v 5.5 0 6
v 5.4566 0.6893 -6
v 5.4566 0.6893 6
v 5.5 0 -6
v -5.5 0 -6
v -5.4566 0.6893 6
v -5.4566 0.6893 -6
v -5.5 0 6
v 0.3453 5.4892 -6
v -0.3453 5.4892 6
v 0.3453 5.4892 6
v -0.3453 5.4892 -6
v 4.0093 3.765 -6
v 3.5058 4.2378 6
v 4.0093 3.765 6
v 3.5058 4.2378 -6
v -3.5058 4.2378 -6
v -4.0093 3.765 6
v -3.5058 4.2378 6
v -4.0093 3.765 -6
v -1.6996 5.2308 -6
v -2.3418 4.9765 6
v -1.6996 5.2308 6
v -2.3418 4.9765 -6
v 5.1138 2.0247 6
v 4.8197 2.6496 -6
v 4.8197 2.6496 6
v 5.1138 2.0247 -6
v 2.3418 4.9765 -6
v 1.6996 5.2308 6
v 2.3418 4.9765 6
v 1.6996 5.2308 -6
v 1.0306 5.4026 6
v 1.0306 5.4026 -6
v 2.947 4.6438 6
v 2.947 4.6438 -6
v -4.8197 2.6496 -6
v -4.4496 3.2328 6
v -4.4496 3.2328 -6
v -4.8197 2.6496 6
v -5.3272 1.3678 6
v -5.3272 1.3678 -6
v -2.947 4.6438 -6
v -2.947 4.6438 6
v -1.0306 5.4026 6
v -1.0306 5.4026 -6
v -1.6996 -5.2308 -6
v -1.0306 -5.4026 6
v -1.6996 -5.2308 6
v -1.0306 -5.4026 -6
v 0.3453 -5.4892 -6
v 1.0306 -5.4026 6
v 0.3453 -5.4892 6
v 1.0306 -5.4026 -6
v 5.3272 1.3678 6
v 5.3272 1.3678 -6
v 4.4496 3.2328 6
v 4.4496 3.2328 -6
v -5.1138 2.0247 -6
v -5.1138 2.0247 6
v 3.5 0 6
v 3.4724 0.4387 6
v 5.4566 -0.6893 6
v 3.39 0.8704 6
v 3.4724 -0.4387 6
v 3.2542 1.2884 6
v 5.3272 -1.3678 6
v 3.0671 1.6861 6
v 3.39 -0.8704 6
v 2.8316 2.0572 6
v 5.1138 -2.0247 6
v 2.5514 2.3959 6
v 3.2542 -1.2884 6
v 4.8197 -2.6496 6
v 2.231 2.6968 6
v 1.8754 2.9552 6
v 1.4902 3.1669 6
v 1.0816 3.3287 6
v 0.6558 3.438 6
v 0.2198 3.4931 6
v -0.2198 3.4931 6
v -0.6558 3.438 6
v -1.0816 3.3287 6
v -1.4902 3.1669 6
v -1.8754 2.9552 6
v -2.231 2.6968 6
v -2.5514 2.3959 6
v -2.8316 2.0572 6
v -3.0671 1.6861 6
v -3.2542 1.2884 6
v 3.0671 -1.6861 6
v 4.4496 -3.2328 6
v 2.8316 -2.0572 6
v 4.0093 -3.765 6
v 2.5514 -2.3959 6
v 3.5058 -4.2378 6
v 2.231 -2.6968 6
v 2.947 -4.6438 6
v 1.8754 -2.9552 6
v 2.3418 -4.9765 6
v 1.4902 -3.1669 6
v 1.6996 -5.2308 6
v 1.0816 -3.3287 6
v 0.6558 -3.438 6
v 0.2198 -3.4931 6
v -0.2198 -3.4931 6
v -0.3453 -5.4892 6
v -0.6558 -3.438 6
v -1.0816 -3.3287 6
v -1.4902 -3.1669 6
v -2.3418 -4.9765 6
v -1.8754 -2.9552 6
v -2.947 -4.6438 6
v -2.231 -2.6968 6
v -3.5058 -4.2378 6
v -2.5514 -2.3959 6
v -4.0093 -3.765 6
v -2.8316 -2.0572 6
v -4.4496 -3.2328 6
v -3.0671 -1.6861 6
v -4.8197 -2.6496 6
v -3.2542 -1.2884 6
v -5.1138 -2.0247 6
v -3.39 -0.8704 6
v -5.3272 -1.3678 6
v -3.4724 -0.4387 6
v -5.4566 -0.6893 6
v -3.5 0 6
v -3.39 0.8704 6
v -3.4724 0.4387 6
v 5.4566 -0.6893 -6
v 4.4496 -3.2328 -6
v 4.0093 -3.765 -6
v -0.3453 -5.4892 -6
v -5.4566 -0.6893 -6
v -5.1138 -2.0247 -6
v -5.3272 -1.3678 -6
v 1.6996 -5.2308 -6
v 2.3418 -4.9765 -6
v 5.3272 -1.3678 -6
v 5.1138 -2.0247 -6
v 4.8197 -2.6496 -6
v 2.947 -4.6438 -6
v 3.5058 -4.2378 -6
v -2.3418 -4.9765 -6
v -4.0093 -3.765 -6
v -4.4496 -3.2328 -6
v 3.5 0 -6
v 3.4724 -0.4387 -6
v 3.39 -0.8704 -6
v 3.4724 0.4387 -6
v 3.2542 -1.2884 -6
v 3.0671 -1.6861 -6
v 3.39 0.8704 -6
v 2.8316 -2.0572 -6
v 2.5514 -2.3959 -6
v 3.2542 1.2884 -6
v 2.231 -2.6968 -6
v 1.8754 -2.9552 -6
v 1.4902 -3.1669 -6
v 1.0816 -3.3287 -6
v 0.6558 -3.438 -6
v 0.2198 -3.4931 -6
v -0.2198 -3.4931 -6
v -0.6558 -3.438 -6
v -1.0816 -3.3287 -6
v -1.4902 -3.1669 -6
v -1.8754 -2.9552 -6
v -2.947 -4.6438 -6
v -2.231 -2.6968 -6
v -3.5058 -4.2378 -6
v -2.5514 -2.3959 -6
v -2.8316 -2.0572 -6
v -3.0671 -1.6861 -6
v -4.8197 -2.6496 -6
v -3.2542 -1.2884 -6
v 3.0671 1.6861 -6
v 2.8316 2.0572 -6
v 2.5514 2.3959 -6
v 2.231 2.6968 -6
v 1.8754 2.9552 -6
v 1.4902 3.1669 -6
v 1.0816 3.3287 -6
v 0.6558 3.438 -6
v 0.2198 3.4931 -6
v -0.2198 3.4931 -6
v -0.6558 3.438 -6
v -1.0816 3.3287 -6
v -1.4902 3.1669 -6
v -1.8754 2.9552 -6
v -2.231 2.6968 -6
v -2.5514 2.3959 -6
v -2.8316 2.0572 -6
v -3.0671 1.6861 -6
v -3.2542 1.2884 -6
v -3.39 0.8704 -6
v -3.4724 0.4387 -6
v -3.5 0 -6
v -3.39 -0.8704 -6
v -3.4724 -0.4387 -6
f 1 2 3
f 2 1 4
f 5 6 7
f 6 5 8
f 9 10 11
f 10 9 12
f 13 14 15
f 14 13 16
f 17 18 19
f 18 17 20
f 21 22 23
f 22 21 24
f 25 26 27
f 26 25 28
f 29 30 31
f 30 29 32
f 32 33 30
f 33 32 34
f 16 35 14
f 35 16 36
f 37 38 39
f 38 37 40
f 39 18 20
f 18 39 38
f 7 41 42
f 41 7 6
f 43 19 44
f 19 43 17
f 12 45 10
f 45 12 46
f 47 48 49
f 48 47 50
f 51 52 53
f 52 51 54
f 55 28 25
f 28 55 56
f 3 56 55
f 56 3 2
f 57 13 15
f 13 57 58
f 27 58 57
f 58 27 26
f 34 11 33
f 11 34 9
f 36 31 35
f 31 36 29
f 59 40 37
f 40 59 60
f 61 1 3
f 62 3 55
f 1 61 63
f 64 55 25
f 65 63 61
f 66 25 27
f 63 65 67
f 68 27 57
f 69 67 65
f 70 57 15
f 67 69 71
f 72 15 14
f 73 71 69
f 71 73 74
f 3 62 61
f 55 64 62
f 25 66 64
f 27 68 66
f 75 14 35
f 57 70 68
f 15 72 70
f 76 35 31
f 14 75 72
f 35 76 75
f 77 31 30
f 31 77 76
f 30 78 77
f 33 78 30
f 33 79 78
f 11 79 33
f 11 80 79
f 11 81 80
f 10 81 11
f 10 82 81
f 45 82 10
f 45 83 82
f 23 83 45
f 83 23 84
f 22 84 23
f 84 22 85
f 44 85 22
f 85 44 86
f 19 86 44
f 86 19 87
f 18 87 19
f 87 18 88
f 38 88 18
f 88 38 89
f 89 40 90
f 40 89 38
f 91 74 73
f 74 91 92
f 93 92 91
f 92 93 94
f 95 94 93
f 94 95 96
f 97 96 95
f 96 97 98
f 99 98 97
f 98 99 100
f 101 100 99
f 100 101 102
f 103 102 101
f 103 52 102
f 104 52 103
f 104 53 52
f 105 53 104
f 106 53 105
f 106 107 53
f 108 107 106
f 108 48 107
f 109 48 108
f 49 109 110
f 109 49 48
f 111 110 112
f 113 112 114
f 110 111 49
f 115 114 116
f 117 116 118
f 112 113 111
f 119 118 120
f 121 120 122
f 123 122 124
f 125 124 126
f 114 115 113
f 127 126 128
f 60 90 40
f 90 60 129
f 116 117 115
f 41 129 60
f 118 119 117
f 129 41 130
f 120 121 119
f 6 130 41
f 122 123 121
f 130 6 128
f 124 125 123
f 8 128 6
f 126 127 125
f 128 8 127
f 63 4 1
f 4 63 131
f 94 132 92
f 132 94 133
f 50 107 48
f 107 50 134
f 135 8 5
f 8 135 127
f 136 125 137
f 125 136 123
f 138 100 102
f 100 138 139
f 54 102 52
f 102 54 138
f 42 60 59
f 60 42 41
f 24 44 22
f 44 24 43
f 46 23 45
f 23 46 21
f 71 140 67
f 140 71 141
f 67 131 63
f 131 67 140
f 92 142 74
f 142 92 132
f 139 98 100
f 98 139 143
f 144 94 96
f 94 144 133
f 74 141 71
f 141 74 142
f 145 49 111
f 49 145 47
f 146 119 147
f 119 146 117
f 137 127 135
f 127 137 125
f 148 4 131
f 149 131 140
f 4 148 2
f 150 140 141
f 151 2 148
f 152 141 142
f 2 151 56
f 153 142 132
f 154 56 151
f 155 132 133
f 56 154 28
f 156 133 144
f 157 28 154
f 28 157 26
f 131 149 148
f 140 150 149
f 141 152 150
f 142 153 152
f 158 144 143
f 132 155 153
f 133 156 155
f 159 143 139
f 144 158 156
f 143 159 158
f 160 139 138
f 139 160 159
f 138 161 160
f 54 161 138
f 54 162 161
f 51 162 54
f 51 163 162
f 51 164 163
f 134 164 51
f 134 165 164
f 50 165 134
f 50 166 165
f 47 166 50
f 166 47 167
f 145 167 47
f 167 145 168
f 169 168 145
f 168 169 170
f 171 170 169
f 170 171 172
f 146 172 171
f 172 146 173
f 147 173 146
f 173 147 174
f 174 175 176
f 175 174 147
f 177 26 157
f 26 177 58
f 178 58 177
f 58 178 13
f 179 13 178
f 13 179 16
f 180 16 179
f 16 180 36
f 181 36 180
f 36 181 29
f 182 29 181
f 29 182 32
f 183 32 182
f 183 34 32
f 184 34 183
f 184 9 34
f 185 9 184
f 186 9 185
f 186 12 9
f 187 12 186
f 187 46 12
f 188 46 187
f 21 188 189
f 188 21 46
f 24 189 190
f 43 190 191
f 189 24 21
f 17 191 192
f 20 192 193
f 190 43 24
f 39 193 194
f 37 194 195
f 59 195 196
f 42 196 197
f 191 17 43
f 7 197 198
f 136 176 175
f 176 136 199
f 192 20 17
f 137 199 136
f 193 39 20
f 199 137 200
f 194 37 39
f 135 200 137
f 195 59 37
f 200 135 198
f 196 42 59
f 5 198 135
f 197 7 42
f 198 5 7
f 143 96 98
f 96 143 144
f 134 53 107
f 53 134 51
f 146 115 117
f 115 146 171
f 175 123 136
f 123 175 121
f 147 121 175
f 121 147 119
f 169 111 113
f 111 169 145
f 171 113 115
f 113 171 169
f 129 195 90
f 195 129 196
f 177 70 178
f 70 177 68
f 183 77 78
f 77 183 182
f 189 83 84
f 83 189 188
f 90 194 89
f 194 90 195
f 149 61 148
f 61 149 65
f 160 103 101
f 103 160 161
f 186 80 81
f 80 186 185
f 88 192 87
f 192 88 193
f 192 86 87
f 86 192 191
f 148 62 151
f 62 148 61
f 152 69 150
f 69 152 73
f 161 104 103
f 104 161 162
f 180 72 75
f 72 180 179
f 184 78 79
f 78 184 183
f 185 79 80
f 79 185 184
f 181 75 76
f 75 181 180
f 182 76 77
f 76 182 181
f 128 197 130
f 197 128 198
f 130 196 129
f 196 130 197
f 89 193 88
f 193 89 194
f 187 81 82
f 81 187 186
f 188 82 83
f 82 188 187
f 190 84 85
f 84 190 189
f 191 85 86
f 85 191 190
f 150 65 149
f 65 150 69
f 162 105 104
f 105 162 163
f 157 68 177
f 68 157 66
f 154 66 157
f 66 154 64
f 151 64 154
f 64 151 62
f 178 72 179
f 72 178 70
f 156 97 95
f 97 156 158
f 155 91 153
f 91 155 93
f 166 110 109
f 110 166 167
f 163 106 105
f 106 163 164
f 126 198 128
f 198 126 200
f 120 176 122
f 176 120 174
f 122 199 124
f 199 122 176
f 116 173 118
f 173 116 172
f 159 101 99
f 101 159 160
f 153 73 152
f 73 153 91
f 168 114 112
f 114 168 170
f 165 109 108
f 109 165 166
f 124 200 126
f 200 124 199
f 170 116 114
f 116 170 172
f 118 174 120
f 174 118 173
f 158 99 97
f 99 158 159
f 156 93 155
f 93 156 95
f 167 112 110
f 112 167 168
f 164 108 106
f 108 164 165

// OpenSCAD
$fn = 50;


difference() {
	union() {
		translate(v = [0, 0, -6.0000000000]) {
			cylinder(h = 12, r = 5.5000000000);
		}
	}
	union() {
		translate(v = [0, 0, -100.0000000000]) {
			cylinder(h = 200, r = 3.5000000000);
		}
	}
}
